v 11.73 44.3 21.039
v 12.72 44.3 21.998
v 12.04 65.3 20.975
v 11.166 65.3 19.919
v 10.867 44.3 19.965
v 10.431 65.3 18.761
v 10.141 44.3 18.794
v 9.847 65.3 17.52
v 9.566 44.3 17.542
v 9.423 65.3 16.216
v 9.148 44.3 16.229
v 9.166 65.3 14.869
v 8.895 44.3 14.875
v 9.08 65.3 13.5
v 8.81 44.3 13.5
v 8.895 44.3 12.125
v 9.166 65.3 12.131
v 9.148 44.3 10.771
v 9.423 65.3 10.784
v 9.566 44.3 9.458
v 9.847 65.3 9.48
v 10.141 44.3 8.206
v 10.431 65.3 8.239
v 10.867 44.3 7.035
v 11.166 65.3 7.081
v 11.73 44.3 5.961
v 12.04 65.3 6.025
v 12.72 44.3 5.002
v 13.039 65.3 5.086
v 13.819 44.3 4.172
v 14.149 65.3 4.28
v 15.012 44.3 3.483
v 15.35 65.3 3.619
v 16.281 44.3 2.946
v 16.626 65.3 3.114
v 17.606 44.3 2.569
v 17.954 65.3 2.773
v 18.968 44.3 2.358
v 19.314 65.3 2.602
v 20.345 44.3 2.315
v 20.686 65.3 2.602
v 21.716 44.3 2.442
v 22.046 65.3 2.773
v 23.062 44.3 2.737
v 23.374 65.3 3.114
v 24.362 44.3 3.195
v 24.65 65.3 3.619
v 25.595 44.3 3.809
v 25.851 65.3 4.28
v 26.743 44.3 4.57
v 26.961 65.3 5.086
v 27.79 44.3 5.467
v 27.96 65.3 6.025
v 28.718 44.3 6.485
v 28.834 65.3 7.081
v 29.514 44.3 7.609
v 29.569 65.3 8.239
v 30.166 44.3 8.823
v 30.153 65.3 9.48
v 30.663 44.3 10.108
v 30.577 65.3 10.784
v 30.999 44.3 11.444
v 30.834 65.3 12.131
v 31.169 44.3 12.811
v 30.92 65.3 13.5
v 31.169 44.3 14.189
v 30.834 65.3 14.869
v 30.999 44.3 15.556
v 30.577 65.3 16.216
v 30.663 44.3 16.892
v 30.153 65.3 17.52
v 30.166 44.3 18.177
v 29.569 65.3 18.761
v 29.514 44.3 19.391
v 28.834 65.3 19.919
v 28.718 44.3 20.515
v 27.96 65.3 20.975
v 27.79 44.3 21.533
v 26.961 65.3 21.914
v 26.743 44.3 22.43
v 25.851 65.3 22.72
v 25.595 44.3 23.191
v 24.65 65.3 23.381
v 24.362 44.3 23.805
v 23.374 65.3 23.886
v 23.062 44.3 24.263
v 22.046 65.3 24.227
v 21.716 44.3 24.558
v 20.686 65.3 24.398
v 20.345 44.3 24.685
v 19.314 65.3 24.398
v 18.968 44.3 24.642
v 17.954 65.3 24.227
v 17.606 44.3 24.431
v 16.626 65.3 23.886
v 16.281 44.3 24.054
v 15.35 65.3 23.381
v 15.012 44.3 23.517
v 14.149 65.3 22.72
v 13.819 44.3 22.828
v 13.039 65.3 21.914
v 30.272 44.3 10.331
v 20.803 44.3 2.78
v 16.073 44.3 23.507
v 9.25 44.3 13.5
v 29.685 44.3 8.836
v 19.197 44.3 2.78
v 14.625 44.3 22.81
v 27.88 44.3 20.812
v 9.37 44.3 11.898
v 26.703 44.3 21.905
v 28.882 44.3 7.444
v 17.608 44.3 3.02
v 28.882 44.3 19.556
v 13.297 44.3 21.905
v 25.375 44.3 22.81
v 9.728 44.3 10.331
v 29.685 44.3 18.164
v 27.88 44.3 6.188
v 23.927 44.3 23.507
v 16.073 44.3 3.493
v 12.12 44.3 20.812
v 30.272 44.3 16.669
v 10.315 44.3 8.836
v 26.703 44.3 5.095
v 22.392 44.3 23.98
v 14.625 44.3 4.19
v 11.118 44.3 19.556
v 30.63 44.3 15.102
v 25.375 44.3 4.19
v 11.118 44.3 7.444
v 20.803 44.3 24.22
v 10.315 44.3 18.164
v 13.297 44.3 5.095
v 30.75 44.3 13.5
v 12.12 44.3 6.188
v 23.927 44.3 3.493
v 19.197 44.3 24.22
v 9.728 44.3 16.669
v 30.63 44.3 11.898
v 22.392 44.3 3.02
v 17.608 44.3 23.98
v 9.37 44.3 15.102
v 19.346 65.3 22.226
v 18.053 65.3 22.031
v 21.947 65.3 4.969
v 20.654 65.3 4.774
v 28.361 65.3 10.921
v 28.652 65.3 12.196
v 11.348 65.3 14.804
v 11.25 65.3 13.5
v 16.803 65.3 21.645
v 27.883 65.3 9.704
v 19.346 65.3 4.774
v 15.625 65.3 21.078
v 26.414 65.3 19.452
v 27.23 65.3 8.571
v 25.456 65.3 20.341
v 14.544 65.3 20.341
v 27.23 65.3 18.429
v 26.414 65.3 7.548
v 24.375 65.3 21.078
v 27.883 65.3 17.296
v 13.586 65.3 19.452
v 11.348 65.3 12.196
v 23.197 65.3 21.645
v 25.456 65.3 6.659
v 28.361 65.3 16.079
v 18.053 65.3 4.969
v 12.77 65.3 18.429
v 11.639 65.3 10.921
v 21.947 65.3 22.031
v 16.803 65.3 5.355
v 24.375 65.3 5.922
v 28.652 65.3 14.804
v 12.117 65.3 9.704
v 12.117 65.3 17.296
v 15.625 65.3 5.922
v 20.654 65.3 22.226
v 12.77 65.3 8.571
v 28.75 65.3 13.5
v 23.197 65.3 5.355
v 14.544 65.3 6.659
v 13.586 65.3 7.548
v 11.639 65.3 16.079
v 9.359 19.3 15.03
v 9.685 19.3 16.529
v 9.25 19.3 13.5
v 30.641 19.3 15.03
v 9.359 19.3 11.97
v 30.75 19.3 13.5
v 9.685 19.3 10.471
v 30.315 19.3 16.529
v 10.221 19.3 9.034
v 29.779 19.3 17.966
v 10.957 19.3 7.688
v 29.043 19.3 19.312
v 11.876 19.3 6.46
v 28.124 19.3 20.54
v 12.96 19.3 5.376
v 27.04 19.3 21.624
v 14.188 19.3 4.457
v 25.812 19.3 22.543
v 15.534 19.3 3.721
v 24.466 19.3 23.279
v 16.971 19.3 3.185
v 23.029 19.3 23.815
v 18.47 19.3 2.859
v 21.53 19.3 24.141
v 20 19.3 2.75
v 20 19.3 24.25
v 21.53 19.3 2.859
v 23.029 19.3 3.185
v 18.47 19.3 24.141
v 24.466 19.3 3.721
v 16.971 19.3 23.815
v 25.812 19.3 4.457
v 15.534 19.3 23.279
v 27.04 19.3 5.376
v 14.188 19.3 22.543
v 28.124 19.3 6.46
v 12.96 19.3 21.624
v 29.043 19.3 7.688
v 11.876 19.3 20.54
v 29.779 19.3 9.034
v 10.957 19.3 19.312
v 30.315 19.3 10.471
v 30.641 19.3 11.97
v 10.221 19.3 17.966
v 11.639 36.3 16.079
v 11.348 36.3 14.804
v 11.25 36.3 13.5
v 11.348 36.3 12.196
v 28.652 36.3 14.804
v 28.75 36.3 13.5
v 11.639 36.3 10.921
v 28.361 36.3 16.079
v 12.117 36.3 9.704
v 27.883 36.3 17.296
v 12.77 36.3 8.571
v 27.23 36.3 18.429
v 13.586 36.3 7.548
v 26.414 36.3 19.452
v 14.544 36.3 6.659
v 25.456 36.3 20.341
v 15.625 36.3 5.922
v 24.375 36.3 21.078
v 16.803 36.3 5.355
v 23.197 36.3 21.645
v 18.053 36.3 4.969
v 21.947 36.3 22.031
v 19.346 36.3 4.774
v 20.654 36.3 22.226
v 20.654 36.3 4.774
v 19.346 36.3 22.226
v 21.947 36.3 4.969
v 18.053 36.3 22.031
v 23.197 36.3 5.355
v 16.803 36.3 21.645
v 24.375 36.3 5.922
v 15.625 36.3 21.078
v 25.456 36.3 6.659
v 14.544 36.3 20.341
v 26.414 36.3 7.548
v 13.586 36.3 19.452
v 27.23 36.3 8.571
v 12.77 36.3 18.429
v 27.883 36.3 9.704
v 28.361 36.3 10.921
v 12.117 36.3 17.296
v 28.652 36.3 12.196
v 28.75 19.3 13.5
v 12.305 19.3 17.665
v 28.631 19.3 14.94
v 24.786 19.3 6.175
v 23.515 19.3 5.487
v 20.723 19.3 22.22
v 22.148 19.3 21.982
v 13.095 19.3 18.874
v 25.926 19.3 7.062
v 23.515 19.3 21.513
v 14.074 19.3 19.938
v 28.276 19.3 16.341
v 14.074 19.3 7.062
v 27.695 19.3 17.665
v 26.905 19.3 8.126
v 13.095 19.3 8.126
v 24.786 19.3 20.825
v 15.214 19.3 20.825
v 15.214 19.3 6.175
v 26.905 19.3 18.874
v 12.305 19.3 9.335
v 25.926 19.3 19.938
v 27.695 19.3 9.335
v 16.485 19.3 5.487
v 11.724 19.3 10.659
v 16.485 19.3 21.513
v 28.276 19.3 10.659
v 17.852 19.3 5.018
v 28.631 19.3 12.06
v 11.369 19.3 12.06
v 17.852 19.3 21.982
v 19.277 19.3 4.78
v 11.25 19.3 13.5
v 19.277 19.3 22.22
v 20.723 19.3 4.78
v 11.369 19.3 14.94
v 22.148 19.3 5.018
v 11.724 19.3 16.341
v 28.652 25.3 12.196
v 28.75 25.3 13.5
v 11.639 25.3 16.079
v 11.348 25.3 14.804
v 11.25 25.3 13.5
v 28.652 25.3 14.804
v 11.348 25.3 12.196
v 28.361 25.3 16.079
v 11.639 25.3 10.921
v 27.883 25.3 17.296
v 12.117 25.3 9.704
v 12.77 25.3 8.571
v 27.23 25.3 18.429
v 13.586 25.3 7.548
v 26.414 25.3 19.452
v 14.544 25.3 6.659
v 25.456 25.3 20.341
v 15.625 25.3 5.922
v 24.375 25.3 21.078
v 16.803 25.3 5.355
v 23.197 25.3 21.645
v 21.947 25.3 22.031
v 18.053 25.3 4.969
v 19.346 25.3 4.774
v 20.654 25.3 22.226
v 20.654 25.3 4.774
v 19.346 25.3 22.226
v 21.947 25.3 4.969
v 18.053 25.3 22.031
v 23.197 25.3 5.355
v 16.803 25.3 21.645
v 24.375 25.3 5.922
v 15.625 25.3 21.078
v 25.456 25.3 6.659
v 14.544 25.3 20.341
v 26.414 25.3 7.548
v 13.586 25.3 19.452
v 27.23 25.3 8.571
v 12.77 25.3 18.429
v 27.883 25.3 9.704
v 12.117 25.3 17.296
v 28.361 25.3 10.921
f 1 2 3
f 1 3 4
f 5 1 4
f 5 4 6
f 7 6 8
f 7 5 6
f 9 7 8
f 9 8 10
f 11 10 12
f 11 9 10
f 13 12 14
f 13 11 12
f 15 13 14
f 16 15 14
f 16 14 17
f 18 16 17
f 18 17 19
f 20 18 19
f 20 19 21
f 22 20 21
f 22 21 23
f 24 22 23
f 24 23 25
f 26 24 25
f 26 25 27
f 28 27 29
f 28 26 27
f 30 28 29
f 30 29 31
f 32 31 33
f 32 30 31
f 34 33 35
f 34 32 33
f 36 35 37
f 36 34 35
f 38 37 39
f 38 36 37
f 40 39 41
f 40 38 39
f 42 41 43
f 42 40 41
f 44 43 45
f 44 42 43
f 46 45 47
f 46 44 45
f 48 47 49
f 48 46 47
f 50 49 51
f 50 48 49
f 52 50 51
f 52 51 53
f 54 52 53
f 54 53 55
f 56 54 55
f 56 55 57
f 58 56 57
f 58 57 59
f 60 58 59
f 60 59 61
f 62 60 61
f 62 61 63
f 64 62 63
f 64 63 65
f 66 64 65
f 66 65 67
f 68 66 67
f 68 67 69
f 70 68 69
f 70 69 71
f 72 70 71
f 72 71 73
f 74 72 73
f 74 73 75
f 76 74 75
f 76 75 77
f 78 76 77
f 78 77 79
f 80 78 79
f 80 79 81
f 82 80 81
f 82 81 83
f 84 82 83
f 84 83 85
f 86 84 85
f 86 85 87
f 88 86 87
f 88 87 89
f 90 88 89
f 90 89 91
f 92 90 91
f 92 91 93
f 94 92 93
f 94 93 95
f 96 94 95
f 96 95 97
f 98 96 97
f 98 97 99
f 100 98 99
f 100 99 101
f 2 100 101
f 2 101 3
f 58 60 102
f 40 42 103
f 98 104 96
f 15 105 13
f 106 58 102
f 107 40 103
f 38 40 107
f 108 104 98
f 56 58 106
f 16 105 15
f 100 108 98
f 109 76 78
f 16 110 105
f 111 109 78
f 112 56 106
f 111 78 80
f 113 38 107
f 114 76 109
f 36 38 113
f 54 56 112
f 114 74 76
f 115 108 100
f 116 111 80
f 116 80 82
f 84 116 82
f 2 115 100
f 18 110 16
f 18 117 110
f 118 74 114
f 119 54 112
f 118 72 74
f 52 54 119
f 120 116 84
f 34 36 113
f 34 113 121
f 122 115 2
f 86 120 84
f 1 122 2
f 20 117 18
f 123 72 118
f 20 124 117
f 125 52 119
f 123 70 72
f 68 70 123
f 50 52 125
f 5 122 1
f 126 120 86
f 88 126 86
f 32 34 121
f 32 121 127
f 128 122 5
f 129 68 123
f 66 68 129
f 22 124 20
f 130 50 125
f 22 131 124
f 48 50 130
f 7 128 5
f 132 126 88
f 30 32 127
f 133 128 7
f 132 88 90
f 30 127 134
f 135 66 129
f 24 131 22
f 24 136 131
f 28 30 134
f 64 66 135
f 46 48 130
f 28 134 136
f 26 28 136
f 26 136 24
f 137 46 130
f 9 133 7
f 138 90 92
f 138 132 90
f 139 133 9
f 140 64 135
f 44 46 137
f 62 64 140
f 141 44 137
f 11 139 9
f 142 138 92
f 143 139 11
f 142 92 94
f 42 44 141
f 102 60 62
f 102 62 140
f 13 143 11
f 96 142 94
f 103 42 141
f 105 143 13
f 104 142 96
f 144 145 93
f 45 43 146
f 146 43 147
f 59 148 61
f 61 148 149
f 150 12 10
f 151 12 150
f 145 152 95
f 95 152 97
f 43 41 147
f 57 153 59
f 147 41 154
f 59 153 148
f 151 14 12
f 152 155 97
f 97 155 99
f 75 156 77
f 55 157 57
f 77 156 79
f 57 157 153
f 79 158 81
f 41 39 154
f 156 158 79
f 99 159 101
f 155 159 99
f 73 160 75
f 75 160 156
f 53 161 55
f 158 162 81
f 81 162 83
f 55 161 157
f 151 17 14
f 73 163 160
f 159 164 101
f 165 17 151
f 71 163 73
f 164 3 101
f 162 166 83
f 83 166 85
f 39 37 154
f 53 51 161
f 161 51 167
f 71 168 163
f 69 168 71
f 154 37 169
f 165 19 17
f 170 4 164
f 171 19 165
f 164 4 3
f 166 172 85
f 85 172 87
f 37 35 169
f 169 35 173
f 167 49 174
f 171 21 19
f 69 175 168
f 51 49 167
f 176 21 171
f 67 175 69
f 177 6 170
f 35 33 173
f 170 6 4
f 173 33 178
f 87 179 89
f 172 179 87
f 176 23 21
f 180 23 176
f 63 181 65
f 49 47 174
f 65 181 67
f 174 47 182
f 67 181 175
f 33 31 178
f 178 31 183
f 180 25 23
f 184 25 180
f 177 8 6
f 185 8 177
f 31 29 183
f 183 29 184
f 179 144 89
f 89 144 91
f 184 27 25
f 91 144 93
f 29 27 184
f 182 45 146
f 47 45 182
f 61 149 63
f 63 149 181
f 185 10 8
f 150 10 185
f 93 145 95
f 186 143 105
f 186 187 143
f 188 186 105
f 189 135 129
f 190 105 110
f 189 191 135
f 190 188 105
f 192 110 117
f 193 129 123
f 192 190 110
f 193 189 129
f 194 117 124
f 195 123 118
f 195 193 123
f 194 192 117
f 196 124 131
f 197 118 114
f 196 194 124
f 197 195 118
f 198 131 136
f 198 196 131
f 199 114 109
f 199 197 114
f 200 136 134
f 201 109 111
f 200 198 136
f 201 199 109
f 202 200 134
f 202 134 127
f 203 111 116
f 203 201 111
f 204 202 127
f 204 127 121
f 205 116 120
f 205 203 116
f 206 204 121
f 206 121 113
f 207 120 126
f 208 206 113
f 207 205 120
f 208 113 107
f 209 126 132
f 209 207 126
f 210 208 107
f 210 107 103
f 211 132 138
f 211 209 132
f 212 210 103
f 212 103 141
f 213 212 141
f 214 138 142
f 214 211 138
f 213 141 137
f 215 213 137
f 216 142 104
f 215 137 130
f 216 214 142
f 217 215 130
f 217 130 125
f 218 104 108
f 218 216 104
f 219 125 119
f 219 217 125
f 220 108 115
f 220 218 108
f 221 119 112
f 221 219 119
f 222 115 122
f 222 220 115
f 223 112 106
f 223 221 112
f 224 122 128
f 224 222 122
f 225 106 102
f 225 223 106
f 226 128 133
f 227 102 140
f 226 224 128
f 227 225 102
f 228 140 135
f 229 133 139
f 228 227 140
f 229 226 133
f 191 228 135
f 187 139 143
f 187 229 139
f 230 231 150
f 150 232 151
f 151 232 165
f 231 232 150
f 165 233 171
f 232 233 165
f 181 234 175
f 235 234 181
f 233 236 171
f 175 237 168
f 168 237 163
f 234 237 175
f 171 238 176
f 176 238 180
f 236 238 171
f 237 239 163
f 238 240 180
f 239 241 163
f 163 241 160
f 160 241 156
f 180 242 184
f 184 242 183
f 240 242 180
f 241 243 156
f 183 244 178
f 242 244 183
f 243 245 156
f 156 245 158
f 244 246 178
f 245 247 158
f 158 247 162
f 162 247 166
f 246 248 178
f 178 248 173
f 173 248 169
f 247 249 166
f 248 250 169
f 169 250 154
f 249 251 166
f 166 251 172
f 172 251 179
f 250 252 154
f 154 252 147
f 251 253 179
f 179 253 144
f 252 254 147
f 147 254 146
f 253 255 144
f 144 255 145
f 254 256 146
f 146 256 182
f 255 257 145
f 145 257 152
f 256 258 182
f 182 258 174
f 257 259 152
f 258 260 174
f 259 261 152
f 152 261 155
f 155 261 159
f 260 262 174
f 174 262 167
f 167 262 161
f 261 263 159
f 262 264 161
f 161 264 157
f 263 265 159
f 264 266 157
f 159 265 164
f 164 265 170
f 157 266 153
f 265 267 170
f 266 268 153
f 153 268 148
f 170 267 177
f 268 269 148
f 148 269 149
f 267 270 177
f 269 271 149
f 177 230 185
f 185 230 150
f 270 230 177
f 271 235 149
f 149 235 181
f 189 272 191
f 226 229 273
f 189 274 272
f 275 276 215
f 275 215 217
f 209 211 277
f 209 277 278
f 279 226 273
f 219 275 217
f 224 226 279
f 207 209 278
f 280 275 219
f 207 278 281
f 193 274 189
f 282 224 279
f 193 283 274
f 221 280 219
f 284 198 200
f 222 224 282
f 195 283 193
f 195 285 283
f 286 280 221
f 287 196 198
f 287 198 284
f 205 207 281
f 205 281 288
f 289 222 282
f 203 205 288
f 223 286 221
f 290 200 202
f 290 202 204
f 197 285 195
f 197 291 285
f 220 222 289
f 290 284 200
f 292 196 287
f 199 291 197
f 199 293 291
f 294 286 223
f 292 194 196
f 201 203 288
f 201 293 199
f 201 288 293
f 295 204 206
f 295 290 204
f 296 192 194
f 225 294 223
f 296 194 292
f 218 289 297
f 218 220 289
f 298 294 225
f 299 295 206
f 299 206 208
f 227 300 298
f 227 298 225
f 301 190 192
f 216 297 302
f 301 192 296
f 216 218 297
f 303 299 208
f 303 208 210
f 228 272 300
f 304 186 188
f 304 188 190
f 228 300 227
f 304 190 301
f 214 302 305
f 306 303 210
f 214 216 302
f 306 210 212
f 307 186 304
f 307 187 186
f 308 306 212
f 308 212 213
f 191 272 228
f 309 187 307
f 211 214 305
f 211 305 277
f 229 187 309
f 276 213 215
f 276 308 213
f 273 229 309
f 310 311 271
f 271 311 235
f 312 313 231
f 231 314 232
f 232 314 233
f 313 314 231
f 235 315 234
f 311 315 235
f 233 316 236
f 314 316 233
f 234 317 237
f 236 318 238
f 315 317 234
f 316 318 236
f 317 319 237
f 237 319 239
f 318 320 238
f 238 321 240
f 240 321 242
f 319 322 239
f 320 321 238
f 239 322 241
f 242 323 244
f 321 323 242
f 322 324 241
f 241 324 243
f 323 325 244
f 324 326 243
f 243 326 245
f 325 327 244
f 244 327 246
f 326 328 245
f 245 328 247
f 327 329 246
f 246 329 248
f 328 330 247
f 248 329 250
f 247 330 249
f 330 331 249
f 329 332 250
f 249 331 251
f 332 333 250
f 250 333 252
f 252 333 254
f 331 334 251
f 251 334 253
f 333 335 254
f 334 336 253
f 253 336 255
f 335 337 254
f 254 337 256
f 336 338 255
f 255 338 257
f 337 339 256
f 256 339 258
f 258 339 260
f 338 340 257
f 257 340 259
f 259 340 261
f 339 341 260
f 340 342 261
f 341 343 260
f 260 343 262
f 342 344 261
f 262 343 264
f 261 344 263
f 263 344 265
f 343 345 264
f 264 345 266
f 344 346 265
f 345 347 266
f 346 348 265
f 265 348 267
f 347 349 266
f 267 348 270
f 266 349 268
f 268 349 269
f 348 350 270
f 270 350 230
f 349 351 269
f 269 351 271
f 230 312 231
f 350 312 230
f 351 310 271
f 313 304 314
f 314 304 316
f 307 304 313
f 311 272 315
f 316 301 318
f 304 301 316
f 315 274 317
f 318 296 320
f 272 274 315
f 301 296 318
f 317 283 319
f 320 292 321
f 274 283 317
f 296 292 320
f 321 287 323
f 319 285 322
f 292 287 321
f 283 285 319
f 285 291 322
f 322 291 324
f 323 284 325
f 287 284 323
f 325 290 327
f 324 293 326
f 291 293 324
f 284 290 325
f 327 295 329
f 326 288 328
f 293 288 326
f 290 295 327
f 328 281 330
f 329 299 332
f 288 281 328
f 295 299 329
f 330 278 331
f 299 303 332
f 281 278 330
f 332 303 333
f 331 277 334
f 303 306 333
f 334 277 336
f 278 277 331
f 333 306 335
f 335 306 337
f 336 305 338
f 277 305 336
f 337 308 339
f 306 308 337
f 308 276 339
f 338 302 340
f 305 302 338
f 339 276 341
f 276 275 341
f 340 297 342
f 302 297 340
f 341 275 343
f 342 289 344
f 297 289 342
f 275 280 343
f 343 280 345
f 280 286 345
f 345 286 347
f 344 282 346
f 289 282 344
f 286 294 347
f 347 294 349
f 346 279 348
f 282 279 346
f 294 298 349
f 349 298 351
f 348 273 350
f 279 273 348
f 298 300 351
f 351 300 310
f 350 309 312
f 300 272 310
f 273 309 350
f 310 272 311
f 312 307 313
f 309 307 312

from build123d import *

# Parameters (mm, degrees)
CYLINDER005_R     = 8.75
CYLINDER005_DEPTH = 40
CYLINDER003_R     = 8.75
CYLINDER003_DEPTH = 40
CYLINDER007_R     = 10.75
CYLINDER007_DEPTH = 40


with BuildPart() as outletextension:
    # Cylinder005 → Cylinder005 (new body)
    with BuildSketch(Plane(origin=(20, 65.3, 13.5), x_dir=(1, 0, 0), z_dir=(0, -1, 0))):
        Circle(CYLINDER005_R)
    extrude(amount=CYLINDER005_DEPTH)


with BuildPart() as inside:
    # Cylinder003 → Cylinder003 (new body)
    with BuildSketch(Plane(origin=(20, 36.3, 13.5), x_dir=(1, 0, 0), z_dir=(0, -1, 0))):
        Circle(CYLINDER003_R)
    extrude(amount=CYLINDER003_DEPTH)

    # Fusion001: union OutletExtension
    add(outletextension.part)


with BuildPart() as housingoutlet:
    # Cylinder007 → Cylinder007 (new body)
    with BuildSketch(Plane(origin=(20, 59.3, 13.5), x_dir=(1, 0, 0), z_dir=(0, -1, 0))):
        Circle(CYLINDER007_R)
    extrude(amount=CYLINDER007_DEPTH)


with BuildPart() as bloweroutletadapter:
    # Cone001 → Cone001 (revolve)
    with BuildSketch(Plane(origin=(20, 65.3, 13.5), x_dir=(-1, 0, 0), z_dir=(0, 0, 1))):
        Polygon((0, 0), (10.92, 0), (11.19, 21), (0, 21), align=None)
    revolve(axis=Axis((20, 65.3, 13.5), (0, -1, 0)))

    # Fusion: union HousingOutlet
    add(housingoutlet.part)

    # Cut: cut inside
    add(inside.part, mode=Mode.SUBTRACT)


solid = bloweroutletadapter.part
